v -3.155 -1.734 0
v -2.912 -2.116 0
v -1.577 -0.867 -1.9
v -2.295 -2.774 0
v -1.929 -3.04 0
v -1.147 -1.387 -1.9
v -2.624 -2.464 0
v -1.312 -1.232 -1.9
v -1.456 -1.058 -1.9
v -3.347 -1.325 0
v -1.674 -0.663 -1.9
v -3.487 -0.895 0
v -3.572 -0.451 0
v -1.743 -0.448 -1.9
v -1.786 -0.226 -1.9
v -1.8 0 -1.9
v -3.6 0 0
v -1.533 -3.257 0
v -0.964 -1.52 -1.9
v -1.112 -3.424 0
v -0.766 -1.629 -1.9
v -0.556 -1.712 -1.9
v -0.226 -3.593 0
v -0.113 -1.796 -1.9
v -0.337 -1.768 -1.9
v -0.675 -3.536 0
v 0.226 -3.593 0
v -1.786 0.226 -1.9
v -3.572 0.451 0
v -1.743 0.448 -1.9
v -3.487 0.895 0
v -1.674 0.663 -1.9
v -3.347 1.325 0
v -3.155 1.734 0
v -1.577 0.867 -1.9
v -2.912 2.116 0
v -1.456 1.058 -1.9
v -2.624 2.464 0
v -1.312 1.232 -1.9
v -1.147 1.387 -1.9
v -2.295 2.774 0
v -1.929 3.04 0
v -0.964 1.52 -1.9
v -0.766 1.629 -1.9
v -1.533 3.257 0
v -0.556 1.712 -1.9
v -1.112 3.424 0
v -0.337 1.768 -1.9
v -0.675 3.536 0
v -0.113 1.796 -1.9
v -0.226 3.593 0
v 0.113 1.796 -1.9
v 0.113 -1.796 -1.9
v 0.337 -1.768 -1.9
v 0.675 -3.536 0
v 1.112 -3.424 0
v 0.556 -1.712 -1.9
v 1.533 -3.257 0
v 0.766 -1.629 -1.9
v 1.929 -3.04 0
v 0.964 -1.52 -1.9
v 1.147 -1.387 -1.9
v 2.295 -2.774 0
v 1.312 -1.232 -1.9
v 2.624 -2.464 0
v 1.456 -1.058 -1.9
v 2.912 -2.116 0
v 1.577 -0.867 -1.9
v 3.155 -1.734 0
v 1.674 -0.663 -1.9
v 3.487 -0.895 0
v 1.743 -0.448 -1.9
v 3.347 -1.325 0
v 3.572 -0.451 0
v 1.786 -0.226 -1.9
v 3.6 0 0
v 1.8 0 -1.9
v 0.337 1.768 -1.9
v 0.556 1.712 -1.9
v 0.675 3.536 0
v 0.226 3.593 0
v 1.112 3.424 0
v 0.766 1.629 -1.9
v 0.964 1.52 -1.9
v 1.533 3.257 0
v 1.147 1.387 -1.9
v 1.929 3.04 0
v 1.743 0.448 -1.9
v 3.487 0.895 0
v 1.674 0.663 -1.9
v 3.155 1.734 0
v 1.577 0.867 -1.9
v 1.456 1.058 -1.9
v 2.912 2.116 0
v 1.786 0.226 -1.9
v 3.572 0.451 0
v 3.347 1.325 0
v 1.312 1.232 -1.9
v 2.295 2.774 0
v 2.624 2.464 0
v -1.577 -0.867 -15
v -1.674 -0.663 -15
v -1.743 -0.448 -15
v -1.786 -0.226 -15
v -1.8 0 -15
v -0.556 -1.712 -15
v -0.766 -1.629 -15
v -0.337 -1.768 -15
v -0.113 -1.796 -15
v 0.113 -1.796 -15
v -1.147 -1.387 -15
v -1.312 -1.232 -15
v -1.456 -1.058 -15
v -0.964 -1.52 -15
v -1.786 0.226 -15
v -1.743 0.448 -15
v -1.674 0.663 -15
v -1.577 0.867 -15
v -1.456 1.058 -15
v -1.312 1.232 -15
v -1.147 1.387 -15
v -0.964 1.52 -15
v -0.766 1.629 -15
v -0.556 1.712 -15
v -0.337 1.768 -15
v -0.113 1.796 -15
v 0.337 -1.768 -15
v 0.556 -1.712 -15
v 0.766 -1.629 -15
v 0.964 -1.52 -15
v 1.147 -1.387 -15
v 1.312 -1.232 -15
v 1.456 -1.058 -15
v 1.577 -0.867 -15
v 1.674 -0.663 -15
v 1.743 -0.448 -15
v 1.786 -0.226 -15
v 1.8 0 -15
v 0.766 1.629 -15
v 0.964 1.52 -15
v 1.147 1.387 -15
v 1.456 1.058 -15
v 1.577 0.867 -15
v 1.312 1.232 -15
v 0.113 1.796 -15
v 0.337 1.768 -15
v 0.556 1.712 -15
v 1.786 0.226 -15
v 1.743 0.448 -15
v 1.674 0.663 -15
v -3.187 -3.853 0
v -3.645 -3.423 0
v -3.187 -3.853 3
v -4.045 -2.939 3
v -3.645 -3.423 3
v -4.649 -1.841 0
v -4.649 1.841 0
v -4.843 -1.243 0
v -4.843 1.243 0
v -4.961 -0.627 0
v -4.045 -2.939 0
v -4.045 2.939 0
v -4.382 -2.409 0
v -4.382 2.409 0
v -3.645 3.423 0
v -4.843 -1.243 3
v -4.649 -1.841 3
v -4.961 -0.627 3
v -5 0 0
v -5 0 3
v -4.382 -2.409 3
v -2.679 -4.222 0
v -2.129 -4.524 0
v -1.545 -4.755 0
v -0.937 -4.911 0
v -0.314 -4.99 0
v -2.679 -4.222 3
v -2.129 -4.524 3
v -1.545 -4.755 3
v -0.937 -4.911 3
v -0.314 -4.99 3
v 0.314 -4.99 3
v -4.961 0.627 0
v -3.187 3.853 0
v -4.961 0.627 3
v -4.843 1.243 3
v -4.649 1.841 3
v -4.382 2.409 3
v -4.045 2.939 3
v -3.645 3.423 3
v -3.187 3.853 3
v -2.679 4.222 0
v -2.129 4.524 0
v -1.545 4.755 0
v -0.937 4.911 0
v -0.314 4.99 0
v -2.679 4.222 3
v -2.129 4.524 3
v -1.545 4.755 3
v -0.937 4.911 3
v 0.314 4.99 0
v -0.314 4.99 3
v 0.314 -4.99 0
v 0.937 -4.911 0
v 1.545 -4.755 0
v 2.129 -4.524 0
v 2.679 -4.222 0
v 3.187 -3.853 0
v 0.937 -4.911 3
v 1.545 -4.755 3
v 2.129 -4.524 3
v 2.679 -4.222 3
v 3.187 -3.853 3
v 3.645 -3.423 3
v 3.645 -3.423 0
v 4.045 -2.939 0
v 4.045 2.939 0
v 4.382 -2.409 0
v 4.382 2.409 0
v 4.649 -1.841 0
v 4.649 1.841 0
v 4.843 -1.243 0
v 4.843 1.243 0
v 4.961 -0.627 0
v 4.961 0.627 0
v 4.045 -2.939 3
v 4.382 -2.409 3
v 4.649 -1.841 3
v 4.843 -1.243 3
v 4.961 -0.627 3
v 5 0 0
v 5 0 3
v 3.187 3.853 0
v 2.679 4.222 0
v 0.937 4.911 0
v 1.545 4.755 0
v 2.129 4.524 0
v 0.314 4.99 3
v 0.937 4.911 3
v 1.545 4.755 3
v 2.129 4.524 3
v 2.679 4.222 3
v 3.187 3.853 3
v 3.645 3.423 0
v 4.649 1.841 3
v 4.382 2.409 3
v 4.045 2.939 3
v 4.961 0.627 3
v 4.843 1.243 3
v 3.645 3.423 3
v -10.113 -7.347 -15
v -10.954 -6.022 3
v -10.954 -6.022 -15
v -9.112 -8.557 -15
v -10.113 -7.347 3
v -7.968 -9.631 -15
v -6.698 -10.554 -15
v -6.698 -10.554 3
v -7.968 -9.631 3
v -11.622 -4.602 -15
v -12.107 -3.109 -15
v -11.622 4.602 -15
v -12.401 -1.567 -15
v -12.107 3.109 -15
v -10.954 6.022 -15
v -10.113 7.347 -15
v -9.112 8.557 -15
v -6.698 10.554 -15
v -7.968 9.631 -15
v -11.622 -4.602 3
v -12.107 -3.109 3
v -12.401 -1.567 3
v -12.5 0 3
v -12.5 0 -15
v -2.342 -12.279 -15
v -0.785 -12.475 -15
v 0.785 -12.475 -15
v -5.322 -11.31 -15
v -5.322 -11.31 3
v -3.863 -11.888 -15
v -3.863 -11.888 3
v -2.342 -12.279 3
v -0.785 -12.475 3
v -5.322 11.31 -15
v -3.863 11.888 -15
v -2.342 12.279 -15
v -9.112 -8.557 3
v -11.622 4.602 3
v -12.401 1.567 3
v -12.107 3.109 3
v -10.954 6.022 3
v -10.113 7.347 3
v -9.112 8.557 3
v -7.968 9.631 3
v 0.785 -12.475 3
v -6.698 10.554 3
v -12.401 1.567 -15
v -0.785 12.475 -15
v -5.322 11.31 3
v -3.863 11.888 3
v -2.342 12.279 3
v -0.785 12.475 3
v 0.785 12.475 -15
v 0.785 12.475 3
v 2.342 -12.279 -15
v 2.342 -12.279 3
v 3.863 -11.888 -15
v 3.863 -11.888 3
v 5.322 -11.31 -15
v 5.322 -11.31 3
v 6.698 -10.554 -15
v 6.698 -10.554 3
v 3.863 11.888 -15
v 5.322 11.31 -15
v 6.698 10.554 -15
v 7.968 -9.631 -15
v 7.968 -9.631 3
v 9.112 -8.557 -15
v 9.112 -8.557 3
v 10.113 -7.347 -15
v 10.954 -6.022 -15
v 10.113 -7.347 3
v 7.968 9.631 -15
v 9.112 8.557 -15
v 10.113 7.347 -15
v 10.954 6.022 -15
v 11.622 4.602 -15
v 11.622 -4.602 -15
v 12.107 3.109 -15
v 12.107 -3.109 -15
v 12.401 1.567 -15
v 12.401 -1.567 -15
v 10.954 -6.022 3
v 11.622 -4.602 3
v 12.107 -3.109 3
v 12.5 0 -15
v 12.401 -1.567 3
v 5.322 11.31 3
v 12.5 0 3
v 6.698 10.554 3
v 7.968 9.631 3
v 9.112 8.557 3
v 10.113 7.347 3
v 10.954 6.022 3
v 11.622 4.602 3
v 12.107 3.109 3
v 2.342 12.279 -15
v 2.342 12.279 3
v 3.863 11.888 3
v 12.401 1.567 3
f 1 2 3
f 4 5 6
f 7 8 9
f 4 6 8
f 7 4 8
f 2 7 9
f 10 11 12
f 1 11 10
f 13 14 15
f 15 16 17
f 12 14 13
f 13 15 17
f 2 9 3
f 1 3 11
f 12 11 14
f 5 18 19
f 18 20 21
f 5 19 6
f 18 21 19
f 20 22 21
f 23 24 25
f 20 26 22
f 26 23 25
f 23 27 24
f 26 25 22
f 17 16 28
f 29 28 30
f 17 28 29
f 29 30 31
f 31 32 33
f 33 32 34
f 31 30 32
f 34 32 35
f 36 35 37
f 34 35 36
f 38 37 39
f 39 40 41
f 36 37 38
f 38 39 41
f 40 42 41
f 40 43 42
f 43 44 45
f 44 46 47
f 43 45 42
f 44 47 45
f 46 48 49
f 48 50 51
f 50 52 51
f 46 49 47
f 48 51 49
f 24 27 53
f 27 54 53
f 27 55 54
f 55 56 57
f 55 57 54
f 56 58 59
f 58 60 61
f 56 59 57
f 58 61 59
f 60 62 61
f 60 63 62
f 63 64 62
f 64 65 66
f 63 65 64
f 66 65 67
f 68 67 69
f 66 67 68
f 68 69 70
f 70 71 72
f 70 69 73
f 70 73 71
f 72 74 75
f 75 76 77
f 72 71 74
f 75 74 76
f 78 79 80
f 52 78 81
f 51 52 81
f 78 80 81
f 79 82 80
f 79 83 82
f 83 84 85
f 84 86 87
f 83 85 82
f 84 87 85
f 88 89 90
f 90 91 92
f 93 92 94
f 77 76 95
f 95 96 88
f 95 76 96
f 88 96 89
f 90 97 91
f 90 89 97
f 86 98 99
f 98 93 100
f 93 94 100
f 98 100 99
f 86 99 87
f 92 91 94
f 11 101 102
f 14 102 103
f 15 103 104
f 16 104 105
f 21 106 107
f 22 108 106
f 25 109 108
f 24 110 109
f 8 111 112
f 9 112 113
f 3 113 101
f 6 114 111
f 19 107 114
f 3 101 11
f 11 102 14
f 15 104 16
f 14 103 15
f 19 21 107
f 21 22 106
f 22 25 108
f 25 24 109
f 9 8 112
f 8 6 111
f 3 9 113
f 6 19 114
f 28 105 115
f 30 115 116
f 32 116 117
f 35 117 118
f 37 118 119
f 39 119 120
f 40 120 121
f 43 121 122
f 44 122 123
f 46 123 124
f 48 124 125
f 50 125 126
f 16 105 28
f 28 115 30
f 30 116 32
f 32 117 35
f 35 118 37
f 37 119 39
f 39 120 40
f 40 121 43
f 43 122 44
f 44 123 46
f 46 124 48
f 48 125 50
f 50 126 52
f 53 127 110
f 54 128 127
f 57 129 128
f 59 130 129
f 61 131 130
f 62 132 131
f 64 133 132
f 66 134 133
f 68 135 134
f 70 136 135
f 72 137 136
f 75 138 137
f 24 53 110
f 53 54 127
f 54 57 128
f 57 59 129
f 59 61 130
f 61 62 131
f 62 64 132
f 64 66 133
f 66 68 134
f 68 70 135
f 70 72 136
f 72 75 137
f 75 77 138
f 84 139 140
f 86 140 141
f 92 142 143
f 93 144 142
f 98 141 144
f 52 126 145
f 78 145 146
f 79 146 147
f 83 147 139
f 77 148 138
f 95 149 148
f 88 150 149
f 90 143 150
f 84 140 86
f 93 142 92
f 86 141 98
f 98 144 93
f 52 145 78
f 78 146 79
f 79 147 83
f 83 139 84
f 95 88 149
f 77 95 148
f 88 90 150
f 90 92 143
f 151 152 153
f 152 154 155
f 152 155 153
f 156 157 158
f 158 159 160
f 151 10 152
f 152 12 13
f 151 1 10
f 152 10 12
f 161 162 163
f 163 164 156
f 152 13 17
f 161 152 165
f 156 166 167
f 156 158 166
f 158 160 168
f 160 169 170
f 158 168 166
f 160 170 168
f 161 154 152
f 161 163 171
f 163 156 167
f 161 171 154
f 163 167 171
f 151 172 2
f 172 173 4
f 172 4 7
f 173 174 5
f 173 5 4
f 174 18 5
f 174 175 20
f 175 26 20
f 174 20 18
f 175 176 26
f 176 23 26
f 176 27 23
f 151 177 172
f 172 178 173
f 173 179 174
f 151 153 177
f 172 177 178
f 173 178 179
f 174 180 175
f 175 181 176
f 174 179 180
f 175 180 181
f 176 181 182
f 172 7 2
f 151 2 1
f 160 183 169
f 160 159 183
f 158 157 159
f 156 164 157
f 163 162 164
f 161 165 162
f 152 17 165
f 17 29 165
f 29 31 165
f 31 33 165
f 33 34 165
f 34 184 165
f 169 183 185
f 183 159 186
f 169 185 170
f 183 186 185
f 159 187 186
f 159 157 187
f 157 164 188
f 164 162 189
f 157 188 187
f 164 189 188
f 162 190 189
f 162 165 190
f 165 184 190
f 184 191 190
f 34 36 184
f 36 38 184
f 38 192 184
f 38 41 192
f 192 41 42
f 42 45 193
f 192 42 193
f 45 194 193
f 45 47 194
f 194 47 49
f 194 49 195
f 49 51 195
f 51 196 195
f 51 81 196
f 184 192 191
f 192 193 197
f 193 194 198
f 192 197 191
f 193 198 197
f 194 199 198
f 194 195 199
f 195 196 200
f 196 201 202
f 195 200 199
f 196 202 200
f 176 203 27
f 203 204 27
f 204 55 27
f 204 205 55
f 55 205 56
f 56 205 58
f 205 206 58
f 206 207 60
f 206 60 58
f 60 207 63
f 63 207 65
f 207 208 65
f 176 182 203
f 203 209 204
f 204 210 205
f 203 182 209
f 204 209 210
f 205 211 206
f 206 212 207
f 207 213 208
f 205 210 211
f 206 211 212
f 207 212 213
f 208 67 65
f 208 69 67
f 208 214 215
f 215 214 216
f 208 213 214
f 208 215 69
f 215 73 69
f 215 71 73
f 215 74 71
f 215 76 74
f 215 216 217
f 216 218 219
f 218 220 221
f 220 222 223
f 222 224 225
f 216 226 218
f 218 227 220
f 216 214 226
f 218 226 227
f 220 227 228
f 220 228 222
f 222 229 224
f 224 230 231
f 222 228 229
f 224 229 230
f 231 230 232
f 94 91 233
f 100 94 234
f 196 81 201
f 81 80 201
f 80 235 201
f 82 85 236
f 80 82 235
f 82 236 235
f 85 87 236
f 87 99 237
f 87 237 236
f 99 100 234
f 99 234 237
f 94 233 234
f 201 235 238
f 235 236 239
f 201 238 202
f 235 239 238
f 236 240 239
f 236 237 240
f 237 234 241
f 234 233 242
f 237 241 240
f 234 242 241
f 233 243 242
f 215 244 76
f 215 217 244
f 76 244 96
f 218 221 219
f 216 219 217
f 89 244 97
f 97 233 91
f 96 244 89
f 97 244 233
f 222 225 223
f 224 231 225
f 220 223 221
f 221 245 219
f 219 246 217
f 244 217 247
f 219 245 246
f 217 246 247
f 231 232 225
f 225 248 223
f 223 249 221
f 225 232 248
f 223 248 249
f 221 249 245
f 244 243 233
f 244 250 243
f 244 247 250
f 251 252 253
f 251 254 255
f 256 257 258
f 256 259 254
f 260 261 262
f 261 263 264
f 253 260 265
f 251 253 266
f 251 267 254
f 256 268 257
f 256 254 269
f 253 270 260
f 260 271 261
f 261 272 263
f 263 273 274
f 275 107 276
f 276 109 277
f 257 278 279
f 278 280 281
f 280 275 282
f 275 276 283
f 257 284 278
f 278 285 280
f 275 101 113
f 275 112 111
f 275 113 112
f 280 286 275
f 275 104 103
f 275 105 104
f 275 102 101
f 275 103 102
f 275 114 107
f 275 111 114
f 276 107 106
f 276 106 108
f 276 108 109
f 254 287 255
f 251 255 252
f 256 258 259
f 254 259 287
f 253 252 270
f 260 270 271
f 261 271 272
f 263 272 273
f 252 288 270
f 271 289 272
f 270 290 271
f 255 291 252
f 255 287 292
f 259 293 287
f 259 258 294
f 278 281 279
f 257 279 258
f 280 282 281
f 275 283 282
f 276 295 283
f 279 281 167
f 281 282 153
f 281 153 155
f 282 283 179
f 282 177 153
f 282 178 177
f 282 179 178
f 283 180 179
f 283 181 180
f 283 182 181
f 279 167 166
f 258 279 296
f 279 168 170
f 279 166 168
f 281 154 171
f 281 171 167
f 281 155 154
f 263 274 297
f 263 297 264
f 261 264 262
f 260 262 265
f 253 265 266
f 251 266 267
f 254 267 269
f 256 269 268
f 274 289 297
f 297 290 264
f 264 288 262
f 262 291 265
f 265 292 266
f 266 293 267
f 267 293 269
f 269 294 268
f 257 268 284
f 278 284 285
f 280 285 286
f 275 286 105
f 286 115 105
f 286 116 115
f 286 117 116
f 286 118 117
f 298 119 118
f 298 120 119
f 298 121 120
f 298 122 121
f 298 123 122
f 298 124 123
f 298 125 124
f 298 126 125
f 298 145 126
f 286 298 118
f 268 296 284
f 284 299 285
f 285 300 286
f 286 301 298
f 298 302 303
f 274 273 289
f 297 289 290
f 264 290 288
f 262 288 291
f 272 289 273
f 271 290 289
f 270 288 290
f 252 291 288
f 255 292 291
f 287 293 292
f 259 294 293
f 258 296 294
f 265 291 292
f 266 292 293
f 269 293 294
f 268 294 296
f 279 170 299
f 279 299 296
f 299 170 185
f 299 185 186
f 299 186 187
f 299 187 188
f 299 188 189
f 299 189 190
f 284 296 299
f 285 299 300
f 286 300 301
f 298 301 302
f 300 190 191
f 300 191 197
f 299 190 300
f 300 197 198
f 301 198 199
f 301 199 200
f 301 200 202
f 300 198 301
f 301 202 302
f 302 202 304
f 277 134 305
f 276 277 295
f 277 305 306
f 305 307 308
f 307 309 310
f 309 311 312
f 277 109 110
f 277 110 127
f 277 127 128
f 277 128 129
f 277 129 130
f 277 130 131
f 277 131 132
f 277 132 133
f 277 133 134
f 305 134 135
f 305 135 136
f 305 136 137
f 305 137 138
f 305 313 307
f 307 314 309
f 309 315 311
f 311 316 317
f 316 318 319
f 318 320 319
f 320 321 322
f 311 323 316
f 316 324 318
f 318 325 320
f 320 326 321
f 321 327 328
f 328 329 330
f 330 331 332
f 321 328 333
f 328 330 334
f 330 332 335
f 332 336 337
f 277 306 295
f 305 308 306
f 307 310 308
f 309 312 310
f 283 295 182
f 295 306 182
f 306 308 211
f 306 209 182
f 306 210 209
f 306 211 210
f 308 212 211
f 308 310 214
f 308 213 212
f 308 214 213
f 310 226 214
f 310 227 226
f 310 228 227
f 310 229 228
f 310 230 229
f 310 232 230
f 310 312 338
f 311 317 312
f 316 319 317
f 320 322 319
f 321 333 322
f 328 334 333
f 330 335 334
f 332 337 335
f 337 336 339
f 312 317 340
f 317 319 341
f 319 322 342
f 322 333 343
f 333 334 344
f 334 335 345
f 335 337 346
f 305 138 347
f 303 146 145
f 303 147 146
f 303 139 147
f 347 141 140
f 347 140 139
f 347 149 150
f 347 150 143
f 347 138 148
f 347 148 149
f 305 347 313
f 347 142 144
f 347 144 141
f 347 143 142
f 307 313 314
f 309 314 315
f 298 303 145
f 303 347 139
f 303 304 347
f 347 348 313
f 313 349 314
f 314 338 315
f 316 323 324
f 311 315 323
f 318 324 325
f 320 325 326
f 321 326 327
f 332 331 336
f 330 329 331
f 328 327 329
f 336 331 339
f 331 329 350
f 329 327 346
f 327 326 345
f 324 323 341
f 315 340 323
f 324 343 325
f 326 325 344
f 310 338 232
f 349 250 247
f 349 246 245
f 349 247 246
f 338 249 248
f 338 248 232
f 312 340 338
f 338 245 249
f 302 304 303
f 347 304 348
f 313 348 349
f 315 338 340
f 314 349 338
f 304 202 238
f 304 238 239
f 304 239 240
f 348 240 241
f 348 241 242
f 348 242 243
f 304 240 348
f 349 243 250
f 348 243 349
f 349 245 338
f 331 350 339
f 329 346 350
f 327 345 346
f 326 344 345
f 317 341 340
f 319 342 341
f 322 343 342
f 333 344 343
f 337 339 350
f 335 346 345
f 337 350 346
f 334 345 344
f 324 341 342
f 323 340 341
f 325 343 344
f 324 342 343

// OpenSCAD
$fn = 50;


difference() {
	union() {
		translate(v = [0, 0, -15.0000000000]) {
			cylinder(h = 18, r = 12.5000000000);
		}
	}
	union() {
		translate(v = [0, 0, 0]) {
			rotate(a = [0, 0, 0]) {
				difference() {
					union() {
						translate(v = [0, 0, -18.0000000000]) {
							cylinder(h = 18, r = 1.5000000000);
						}
						translate(v = [0, 0, -1.9000000000]) {
							cylinder(h = 1.9000000000, r1 = 1.8000000000, r2 = 3.6000000000);
						}
						translate(v = [0, 0, -18.0000000000]) {
							cylinder(h = 18, r = 1.8000000000);
						}
						translate(v = [0, 0, -18.0000000000]) {
							cylinder(h = 18, r = 1.5000000000);
						}
					}
					union();
				}
			}
		}
		#cylinder(h = 3, r = 5.0000000000);
	}
}
